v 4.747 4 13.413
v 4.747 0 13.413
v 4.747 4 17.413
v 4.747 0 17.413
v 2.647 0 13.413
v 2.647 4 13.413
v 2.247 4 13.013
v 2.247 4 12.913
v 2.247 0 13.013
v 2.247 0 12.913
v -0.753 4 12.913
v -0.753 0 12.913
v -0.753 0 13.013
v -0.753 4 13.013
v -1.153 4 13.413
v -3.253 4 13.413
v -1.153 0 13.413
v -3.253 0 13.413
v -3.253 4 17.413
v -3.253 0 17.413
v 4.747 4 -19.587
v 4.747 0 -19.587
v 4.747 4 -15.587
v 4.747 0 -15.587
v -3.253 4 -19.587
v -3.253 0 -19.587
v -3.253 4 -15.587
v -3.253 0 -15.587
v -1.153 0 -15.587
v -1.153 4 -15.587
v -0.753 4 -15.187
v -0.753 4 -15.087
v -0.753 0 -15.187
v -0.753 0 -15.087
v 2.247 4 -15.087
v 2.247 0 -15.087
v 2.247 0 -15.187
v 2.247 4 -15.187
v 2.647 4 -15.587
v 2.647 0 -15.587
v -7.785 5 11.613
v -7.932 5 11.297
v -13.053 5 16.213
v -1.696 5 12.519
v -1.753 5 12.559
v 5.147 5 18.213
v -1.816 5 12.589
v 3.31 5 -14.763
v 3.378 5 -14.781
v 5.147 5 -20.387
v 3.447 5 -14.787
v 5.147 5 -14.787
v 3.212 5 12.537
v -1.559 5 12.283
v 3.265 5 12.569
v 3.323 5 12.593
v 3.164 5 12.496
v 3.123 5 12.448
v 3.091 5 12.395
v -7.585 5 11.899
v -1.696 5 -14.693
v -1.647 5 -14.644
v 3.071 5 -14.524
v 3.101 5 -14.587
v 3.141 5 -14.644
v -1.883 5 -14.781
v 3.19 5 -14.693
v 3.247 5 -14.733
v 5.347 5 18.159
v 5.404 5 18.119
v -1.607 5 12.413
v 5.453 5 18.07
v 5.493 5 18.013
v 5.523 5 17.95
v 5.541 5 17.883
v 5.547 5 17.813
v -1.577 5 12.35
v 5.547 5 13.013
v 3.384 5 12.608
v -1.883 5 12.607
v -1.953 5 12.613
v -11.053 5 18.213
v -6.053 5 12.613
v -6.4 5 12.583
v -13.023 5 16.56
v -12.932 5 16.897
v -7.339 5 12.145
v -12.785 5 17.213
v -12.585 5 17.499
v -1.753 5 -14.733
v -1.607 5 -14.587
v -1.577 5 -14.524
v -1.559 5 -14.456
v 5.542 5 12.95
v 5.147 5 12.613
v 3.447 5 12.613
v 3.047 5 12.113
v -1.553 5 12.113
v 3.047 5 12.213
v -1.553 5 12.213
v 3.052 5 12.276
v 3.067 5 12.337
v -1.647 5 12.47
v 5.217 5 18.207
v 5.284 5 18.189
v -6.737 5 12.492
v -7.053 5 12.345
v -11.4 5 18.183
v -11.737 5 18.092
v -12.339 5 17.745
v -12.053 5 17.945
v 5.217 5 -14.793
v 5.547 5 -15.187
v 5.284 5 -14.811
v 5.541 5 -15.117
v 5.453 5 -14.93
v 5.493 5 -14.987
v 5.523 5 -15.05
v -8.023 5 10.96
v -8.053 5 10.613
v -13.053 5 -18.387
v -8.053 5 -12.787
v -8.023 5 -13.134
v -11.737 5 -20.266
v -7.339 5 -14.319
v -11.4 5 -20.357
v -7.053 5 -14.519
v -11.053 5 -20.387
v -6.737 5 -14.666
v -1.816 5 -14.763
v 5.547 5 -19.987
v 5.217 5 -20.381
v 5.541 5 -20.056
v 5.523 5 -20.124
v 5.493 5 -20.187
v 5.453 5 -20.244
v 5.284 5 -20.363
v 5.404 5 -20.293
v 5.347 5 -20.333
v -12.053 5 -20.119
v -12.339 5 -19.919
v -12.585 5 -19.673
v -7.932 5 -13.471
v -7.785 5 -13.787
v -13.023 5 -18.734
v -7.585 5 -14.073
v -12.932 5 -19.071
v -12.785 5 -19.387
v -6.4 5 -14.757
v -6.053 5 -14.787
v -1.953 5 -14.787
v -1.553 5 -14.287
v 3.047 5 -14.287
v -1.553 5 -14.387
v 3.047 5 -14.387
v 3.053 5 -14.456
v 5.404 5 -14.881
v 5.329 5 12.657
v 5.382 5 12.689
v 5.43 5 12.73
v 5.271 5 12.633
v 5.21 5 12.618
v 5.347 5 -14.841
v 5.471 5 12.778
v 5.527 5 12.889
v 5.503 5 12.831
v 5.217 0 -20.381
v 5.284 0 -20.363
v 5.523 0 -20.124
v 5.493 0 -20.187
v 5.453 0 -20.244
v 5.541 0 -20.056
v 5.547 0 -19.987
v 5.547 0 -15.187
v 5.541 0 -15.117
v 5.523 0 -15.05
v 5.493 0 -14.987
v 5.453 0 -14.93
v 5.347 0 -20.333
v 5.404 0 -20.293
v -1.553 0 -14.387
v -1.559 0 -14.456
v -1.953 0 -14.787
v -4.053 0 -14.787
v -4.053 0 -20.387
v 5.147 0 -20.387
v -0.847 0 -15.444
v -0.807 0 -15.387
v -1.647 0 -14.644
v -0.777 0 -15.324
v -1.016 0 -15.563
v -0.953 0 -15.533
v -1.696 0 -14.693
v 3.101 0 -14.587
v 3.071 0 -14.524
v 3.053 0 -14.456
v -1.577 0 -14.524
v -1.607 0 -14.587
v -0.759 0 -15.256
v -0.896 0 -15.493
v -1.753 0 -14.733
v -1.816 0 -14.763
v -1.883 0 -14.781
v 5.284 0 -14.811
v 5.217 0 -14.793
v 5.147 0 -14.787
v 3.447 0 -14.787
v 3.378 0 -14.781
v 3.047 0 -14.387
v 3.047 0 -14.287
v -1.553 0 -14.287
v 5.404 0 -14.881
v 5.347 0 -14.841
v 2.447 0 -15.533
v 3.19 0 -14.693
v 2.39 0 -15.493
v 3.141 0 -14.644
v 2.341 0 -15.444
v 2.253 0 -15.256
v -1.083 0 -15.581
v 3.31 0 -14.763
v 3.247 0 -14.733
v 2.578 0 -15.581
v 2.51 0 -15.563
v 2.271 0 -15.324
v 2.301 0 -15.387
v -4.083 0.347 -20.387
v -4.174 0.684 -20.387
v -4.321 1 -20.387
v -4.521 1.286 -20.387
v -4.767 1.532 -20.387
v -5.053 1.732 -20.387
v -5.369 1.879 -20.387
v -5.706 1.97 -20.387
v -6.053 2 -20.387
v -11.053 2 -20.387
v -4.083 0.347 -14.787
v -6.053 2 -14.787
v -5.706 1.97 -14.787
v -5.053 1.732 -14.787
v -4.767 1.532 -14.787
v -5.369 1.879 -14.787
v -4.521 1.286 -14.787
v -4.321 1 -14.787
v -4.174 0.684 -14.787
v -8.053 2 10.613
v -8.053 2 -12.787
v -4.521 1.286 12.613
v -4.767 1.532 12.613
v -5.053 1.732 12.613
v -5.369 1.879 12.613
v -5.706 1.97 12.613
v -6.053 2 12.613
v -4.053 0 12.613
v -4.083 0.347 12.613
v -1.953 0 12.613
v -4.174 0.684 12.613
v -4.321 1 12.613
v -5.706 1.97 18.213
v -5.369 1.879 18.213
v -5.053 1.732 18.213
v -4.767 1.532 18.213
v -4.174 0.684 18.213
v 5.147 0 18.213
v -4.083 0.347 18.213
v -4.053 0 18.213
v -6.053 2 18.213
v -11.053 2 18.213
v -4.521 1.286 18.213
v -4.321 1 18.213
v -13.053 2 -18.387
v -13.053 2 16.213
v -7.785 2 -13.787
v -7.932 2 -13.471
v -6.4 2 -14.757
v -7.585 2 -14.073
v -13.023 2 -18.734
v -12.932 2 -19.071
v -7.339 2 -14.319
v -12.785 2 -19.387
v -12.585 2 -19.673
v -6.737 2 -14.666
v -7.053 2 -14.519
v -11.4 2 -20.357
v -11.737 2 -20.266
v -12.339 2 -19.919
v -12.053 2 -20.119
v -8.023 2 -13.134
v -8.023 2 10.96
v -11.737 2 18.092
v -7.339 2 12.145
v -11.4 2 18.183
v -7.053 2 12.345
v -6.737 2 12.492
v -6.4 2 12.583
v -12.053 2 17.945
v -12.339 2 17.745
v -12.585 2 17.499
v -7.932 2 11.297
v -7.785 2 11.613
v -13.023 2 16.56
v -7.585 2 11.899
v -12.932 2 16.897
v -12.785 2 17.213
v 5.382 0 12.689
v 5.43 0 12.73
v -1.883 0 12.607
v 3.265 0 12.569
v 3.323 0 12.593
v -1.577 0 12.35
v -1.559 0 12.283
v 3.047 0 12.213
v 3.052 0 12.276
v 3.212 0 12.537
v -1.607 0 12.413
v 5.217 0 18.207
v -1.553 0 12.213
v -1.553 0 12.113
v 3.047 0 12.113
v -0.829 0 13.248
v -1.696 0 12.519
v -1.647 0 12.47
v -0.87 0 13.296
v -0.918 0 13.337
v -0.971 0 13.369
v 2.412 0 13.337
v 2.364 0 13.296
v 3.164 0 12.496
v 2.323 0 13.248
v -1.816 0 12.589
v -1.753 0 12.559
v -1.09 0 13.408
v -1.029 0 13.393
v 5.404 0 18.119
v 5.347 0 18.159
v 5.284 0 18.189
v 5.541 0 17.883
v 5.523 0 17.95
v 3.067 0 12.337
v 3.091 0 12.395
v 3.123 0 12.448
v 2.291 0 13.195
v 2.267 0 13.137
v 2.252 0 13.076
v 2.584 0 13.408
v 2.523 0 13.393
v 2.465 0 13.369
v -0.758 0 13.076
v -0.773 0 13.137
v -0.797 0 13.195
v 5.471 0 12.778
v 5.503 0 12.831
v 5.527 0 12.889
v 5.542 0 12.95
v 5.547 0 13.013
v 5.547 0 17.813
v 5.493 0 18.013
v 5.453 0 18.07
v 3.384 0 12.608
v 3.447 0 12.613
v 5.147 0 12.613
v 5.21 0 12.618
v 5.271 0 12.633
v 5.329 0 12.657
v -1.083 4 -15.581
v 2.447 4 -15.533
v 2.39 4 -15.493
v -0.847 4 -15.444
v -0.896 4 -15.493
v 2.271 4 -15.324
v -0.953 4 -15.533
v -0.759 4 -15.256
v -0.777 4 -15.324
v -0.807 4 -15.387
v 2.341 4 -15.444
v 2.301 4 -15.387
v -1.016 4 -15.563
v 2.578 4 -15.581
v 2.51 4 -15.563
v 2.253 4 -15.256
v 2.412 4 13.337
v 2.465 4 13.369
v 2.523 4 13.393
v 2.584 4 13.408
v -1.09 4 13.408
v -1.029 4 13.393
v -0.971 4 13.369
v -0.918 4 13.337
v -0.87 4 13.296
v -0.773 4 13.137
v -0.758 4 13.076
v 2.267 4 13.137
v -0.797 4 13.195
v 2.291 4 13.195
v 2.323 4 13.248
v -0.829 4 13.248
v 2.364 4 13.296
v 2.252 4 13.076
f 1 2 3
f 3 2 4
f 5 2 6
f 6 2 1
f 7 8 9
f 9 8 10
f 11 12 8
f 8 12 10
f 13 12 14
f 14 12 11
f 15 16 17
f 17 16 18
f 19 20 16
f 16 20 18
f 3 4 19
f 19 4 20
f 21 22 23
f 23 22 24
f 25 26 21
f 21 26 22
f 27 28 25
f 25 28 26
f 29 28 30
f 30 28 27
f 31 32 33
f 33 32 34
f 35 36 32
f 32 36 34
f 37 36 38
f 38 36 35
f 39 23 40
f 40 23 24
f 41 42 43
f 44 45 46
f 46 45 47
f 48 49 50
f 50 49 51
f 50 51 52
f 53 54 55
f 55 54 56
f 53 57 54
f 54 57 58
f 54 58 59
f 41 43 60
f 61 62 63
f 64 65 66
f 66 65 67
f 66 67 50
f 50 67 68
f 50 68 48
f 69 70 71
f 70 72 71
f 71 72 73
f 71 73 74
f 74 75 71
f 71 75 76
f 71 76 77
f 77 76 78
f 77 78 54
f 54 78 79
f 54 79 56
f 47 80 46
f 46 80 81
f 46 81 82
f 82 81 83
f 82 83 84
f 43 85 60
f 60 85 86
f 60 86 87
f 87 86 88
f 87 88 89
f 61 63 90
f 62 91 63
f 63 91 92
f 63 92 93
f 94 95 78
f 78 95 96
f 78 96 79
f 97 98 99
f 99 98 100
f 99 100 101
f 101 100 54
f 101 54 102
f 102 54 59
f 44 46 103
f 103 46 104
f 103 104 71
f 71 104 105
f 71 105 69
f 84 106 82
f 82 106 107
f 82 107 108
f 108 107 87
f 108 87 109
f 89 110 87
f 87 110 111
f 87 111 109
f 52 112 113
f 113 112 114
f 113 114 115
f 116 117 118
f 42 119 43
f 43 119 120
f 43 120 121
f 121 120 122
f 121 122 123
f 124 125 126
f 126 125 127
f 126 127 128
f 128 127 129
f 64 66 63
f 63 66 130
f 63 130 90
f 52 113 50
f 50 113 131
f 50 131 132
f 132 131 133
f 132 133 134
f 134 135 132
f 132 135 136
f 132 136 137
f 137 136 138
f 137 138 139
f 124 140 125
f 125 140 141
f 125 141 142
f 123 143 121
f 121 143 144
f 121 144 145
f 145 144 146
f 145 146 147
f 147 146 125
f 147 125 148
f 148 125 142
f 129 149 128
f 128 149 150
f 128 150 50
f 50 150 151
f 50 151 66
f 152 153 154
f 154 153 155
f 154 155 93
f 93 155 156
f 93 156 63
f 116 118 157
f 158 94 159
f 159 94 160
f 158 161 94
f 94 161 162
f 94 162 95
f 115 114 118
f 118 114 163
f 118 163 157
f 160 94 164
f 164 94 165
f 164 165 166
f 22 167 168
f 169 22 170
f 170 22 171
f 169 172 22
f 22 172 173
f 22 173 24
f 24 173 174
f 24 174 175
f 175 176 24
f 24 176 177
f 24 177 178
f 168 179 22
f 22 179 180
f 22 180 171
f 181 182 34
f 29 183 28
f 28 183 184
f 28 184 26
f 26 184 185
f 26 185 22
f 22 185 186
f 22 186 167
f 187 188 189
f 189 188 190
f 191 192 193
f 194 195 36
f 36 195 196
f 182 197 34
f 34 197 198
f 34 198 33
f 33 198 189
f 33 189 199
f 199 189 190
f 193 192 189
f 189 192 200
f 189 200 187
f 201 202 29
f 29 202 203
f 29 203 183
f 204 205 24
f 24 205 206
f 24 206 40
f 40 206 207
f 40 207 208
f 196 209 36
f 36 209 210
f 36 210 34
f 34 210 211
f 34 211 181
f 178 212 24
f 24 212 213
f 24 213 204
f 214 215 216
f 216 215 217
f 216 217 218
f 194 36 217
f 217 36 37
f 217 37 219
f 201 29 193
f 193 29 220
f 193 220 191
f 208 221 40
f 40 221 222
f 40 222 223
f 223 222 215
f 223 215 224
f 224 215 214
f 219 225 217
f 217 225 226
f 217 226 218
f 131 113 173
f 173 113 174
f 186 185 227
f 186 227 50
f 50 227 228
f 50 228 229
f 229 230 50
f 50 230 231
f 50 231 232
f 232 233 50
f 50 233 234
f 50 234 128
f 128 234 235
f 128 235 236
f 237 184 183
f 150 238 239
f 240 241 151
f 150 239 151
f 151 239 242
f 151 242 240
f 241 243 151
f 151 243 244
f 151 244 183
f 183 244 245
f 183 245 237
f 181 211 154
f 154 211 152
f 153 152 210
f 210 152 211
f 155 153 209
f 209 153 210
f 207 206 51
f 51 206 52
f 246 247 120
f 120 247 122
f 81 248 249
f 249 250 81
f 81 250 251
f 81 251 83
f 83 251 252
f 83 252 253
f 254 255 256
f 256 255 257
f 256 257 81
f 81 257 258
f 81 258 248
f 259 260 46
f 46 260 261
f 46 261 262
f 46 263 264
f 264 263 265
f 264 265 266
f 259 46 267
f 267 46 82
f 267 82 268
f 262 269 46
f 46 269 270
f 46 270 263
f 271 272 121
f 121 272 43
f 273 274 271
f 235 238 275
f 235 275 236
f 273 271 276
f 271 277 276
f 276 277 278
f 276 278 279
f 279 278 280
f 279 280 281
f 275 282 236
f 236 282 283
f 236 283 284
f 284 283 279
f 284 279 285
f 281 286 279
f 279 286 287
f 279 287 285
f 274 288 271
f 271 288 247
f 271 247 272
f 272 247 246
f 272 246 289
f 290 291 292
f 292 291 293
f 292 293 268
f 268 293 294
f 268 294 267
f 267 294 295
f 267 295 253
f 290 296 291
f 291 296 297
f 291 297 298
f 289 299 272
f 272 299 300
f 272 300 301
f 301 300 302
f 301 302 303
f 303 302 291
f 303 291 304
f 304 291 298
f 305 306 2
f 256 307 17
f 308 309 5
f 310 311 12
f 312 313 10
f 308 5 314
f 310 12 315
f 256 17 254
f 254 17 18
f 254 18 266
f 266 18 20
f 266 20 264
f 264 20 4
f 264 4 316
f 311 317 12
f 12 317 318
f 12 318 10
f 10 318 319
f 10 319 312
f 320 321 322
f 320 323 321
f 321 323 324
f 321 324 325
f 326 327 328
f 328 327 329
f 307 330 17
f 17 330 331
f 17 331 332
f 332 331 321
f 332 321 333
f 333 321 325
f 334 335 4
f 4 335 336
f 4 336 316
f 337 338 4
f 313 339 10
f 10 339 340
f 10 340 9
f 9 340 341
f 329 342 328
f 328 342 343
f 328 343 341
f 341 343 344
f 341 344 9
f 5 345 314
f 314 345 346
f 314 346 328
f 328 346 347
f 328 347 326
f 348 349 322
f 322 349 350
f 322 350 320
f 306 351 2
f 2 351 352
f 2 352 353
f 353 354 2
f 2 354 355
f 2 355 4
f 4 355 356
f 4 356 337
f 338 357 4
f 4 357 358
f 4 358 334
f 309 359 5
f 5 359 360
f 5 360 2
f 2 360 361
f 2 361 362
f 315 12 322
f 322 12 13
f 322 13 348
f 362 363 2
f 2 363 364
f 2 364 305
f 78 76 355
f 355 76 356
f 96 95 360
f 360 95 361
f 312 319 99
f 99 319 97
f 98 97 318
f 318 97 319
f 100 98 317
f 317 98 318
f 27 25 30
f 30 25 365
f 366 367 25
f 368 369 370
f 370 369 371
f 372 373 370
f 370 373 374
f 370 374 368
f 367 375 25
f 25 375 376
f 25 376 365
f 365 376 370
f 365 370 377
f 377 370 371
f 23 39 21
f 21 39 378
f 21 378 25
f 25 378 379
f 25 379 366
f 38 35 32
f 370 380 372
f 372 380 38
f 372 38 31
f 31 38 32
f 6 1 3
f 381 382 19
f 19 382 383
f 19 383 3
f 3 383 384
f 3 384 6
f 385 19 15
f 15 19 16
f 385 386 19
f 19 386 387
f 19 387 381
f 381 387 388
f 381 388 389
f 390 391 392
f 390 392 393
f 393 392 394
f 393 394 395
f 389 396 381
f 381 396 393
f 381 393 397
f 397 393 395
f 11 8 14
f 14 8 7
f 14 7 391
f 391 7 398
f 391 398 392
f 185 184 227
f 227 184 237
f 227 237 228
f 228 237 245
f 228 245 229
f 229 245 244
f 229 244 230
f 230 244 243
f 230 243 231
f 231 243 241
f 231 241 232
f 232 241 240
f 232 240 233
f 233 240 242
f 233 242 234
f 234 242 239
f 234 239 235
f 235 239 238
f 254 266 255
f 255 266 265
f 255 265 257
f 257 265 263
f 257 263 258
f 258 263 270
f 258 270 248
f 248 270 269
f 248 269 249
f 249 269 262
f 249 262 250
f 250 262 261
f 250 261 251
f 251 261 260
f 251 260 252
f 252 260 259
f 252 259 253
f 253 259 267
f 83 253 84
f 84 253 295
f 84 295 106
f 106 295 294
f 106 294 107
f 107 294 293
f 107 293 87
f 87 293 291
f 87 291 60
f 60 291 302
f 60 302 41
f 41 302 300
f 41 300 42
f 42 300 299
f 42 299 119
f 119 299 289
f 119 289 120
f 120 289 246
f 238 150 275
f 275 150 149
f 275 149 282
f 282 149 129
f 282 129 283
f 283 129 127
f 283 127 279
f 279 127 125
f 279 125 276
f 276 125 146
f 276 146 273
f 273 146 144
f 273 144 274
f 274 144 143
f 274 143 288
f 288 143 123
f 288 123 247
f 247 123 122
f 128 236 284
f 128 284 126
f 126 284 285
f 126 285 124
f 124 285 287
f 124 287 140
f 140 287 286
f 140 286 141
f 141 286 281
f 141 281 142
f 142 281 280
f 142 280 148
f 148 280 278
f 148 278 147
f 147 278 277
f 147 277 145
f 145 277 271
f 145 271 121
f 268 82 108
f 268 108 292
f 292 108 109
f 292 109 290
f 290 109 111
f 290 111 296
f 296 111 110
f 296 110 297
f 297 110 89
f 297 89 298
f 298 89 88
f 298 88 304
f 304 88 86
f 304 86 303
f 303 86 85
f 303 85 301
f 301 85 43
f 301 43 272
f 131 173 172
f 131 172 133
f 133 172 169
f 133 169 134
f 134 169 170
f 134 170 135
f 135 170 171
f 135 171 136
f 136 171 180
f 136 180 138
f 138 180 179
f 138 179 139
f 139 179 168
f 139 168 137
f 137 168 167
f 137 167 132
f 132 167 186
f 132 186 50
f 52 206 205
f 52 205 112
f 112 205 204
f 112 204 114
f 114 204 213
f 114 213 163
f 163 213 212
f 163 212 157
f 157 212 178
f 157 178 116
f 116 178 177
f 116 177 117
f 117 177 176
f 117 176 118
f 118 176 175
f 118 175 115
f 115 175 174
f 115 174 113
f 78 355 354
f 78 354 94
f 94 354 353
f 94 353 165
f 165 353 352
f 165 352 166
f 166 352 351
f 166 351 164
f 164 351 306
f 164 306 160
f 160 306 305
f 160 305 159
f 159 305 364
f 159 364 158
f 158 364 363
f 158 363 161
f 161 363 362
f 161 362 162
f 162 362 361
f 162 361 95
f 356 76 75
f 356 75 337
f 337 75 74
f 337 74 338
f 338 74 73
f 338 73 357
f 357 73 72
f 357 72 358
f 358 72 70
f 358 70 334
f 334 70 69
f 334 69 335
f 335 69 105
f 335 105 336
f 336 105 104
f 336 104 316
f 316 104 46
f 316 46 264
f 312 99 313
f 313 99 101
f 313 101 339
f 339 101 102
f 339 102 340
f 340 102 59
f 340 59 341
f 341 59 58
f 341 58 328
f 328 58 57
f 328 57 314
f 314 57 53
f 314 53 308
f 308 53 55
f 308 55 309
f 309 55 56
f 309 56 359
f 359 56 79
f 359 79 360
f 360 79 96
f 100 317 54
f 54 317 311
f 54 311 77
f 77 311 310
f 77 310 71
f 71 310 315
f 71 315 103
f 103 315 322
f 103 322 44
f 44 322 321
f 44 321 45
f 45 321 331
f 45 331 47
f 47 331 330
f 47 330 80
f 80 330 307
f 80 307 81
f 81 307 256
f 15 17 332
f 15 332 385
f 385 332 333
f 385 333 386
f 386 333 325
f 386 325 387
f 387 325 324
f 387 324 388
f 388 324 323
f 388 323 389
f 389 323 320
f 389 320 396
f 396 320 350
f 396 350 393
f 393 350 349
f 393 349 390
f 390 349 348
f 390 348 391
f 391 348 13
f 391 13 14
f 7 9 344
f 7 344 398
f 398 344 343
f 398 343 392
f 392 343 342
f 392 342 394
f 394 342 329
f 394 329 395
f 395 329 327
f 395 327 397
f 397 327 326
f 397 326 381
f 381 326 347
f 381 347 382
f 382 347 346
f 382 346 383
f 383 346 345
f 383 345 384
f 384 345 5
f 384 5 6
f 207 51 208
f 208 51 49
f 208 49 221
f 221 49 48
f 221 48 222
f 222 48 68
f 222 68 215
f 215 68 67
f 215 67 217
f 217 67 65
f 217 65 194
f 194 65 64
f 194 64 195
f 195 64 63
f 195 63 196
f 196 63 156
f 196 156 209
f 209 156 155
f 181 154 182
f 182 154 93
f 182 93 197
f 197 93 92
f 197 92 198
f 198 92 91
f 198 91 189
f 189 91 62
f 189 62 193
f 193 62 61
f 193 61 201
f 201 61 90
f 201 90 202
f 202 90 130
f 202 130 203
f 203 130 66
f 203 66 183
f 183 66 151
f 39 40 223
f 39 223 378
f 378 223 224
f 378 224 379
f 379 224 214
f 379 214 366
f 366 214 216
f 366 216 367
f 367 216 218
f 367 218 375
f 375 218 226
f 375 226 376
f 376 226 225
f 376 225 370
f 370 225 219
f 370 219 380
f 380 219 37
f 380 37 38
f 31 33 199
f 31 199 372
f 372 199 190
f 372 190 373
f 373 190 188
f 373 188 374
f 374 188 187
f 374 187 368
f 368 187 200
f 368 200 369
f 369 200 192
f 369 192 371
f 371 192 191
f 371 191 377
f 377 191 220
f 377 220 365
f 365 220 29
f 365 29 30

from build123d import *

# Parameters (mm, degrees)
EXTRUDE_1_DEPTH   = 5
EXTRUDE_1_2_DEPTH = 5
EXTRUDE_1_3_DEPTH = 3
SKETCH_3_W        = 8
SKETCH_3_H        = 4.5
EXTRUDE_2_DEPTH   = 1
FILLET_1_R        = 2
FILLET_2_R        = 0.4
FILLET_3_R        = 0.4


with BuildPart() as part:
    # Эскиз1 → Extrude 1 (new body)
    with BuildSketch(Plane(origin=(0, 0, 0), x_dir=(1, 0, 0), z_dir=(0, 1, 0))):
        Polygon((3.047071049, 14.786951222), (5.547071049, 14.786951222), (5.547071049, 20.386951222), (-4.052928951, 20.386951222), (-4.052928951, 14.786951222), (-1.552928951, 14.786951222), (-1.552928951, 14.286951222), (3.047071049, 14.286951222), align=None)
        Polygon((2.247071049, 15.586951222), (4.747071049, 15.586951222), (4.747071049, 19.586951222), (-3.252928951, 19.586951222), (-3.252928951, 15.586951222), (-0.752928951, 15.586951222), (-0.752928951, 15.086951222), (2.247071049, 15.086951222), align=None, mode=Mode.SUBTRACT)
    extrude(amount=EXTRUDE_1_DEPTH)



with BuildPart() as body_2:
    # Эскиз1 → Extrude 1 2 (new body)
    with BuildSketch(Plane(origin=(0, 0, 0), x_dir=(1, 0, 0), z_dir=(0, 1, 0))):
        Polygon((-4.052928951, -12.613048778), (-4.052928951, -18.213048778), (5.547071049, -18.213048778), (5.547071049, -12.613048778), (3.047071049, -12.613048778), (3.047071049, -12.113048778), (-1.552928951, -12.113048778), (-1.552928951, -12.613048778), align=None)
        Polygon((-3.252928951, -13.413048778), (-3.252928951, -17.413048778), (4.747071049, -17.413048778), (4.747071049, -13.413048778), (2.247071049, -13.413048778), (2.247071049, -12.913048778), (-0.752928951, -12.913048778), (-0.752928951, -13.413048778), align=None, mode=Mode.SUBTRACT)
    extrude(amount=EXTRUDE_1_2_DEPTH)


with BuildPart() as part_1:
    add(part.part)

    add(body_2.part)  # Extrude 1 3 merges body 2
    # Эскиз2 → Extrude 1 3 (add)
    with BuildSketch(Plane(origin=(0, 5, 0), x_dir=(1, 0, 0), z_dir=(0, 1, 0))):
        Polygon((-4.052928951, 20.386951222), (-13.052928951, 20.386951222), (-13.052928951, -18.213048778), (-4.052928951, -18.213048778), (-4.052928951, -12.613048778), (-8.052928951, -12.613048778), (-8.052928951, 14.786951222), (-4.052928951, 14.786951222), align=None)
    extrude(amount=-EXTRUDE_1_3_DEPTH)

    # Эскиз3 → Бобышка-Вытянуть2 (add)
    with BuildSketch(Plane(origin=(0, 5, 0), x_dir=(1, 0, 0), z_dir=(0, 1, 0))):
        with Locations((0.747071049, 17.336951222)):
            Rectangle(SKETCH_3_W, SKETCH_3_H)
        with Locations((0.747071049, -15.163048778)):
            Rectangle(SKETCH_3_W, SKETCH_3_H)
    extrude(amount=-EXTRUDE_2_DEPTH)

    # Скругление1
    fillet_1_edges = [part_1.edges().sort_by_distance(p)[0] for p in [
        (-4.052928951, 2, -17.586951222),
        (-4.052928951, 2, 15.413048778),
        (-8.052928951, 3.5, 12.613048778),
        (-8.052928951, 3.5, -14.786951222),
        (-13.052928951, 3.5, -20.386951222),
        (-13.052928951, 3.5, 18.213048778),
    ]]
    fillet(fillet_1_edges, radius=FILLET_1_R - 0.0001)  # a hair under: the kernel refuses the full size

    # Скругление2
    fillet_2_edges = [part_1.edges().sort_by_distance(p)[0] for p in [
        (5.547071049, 2.5, -14.786951222),
        (5.547071049, 2.5, -20.386951222),
        (5.547071049, 2.5, 18.213048778),
        (5.547071049, 2.5, 12.613048778),
    ]]
    fillet(fillet_2_edges, radius=FILLET_2_R)

    # Скругление3
    fillet_3_edges = [part_1.edges().sort_by_distance(p)[0] for p in [
        (-0.752928951, 2, -15.586951222),
        (3.047071049, 2.5, -14.786951222),
        (-1.552928951, 2.5, -14.786951222),
        (-0.752928951, 2, 13.413048778),
        (2.247071049, 2, 13.413048778),
        (3.047071049, 2.5, 12.613048778),
        (-1.552928951, 2.5, 12.613048778),
        (2.247071049, 2, -15.586951222),
    ]]
    fillet(fillet_3_edges, radius=FILLET_3_R)


solid = part_1.part
